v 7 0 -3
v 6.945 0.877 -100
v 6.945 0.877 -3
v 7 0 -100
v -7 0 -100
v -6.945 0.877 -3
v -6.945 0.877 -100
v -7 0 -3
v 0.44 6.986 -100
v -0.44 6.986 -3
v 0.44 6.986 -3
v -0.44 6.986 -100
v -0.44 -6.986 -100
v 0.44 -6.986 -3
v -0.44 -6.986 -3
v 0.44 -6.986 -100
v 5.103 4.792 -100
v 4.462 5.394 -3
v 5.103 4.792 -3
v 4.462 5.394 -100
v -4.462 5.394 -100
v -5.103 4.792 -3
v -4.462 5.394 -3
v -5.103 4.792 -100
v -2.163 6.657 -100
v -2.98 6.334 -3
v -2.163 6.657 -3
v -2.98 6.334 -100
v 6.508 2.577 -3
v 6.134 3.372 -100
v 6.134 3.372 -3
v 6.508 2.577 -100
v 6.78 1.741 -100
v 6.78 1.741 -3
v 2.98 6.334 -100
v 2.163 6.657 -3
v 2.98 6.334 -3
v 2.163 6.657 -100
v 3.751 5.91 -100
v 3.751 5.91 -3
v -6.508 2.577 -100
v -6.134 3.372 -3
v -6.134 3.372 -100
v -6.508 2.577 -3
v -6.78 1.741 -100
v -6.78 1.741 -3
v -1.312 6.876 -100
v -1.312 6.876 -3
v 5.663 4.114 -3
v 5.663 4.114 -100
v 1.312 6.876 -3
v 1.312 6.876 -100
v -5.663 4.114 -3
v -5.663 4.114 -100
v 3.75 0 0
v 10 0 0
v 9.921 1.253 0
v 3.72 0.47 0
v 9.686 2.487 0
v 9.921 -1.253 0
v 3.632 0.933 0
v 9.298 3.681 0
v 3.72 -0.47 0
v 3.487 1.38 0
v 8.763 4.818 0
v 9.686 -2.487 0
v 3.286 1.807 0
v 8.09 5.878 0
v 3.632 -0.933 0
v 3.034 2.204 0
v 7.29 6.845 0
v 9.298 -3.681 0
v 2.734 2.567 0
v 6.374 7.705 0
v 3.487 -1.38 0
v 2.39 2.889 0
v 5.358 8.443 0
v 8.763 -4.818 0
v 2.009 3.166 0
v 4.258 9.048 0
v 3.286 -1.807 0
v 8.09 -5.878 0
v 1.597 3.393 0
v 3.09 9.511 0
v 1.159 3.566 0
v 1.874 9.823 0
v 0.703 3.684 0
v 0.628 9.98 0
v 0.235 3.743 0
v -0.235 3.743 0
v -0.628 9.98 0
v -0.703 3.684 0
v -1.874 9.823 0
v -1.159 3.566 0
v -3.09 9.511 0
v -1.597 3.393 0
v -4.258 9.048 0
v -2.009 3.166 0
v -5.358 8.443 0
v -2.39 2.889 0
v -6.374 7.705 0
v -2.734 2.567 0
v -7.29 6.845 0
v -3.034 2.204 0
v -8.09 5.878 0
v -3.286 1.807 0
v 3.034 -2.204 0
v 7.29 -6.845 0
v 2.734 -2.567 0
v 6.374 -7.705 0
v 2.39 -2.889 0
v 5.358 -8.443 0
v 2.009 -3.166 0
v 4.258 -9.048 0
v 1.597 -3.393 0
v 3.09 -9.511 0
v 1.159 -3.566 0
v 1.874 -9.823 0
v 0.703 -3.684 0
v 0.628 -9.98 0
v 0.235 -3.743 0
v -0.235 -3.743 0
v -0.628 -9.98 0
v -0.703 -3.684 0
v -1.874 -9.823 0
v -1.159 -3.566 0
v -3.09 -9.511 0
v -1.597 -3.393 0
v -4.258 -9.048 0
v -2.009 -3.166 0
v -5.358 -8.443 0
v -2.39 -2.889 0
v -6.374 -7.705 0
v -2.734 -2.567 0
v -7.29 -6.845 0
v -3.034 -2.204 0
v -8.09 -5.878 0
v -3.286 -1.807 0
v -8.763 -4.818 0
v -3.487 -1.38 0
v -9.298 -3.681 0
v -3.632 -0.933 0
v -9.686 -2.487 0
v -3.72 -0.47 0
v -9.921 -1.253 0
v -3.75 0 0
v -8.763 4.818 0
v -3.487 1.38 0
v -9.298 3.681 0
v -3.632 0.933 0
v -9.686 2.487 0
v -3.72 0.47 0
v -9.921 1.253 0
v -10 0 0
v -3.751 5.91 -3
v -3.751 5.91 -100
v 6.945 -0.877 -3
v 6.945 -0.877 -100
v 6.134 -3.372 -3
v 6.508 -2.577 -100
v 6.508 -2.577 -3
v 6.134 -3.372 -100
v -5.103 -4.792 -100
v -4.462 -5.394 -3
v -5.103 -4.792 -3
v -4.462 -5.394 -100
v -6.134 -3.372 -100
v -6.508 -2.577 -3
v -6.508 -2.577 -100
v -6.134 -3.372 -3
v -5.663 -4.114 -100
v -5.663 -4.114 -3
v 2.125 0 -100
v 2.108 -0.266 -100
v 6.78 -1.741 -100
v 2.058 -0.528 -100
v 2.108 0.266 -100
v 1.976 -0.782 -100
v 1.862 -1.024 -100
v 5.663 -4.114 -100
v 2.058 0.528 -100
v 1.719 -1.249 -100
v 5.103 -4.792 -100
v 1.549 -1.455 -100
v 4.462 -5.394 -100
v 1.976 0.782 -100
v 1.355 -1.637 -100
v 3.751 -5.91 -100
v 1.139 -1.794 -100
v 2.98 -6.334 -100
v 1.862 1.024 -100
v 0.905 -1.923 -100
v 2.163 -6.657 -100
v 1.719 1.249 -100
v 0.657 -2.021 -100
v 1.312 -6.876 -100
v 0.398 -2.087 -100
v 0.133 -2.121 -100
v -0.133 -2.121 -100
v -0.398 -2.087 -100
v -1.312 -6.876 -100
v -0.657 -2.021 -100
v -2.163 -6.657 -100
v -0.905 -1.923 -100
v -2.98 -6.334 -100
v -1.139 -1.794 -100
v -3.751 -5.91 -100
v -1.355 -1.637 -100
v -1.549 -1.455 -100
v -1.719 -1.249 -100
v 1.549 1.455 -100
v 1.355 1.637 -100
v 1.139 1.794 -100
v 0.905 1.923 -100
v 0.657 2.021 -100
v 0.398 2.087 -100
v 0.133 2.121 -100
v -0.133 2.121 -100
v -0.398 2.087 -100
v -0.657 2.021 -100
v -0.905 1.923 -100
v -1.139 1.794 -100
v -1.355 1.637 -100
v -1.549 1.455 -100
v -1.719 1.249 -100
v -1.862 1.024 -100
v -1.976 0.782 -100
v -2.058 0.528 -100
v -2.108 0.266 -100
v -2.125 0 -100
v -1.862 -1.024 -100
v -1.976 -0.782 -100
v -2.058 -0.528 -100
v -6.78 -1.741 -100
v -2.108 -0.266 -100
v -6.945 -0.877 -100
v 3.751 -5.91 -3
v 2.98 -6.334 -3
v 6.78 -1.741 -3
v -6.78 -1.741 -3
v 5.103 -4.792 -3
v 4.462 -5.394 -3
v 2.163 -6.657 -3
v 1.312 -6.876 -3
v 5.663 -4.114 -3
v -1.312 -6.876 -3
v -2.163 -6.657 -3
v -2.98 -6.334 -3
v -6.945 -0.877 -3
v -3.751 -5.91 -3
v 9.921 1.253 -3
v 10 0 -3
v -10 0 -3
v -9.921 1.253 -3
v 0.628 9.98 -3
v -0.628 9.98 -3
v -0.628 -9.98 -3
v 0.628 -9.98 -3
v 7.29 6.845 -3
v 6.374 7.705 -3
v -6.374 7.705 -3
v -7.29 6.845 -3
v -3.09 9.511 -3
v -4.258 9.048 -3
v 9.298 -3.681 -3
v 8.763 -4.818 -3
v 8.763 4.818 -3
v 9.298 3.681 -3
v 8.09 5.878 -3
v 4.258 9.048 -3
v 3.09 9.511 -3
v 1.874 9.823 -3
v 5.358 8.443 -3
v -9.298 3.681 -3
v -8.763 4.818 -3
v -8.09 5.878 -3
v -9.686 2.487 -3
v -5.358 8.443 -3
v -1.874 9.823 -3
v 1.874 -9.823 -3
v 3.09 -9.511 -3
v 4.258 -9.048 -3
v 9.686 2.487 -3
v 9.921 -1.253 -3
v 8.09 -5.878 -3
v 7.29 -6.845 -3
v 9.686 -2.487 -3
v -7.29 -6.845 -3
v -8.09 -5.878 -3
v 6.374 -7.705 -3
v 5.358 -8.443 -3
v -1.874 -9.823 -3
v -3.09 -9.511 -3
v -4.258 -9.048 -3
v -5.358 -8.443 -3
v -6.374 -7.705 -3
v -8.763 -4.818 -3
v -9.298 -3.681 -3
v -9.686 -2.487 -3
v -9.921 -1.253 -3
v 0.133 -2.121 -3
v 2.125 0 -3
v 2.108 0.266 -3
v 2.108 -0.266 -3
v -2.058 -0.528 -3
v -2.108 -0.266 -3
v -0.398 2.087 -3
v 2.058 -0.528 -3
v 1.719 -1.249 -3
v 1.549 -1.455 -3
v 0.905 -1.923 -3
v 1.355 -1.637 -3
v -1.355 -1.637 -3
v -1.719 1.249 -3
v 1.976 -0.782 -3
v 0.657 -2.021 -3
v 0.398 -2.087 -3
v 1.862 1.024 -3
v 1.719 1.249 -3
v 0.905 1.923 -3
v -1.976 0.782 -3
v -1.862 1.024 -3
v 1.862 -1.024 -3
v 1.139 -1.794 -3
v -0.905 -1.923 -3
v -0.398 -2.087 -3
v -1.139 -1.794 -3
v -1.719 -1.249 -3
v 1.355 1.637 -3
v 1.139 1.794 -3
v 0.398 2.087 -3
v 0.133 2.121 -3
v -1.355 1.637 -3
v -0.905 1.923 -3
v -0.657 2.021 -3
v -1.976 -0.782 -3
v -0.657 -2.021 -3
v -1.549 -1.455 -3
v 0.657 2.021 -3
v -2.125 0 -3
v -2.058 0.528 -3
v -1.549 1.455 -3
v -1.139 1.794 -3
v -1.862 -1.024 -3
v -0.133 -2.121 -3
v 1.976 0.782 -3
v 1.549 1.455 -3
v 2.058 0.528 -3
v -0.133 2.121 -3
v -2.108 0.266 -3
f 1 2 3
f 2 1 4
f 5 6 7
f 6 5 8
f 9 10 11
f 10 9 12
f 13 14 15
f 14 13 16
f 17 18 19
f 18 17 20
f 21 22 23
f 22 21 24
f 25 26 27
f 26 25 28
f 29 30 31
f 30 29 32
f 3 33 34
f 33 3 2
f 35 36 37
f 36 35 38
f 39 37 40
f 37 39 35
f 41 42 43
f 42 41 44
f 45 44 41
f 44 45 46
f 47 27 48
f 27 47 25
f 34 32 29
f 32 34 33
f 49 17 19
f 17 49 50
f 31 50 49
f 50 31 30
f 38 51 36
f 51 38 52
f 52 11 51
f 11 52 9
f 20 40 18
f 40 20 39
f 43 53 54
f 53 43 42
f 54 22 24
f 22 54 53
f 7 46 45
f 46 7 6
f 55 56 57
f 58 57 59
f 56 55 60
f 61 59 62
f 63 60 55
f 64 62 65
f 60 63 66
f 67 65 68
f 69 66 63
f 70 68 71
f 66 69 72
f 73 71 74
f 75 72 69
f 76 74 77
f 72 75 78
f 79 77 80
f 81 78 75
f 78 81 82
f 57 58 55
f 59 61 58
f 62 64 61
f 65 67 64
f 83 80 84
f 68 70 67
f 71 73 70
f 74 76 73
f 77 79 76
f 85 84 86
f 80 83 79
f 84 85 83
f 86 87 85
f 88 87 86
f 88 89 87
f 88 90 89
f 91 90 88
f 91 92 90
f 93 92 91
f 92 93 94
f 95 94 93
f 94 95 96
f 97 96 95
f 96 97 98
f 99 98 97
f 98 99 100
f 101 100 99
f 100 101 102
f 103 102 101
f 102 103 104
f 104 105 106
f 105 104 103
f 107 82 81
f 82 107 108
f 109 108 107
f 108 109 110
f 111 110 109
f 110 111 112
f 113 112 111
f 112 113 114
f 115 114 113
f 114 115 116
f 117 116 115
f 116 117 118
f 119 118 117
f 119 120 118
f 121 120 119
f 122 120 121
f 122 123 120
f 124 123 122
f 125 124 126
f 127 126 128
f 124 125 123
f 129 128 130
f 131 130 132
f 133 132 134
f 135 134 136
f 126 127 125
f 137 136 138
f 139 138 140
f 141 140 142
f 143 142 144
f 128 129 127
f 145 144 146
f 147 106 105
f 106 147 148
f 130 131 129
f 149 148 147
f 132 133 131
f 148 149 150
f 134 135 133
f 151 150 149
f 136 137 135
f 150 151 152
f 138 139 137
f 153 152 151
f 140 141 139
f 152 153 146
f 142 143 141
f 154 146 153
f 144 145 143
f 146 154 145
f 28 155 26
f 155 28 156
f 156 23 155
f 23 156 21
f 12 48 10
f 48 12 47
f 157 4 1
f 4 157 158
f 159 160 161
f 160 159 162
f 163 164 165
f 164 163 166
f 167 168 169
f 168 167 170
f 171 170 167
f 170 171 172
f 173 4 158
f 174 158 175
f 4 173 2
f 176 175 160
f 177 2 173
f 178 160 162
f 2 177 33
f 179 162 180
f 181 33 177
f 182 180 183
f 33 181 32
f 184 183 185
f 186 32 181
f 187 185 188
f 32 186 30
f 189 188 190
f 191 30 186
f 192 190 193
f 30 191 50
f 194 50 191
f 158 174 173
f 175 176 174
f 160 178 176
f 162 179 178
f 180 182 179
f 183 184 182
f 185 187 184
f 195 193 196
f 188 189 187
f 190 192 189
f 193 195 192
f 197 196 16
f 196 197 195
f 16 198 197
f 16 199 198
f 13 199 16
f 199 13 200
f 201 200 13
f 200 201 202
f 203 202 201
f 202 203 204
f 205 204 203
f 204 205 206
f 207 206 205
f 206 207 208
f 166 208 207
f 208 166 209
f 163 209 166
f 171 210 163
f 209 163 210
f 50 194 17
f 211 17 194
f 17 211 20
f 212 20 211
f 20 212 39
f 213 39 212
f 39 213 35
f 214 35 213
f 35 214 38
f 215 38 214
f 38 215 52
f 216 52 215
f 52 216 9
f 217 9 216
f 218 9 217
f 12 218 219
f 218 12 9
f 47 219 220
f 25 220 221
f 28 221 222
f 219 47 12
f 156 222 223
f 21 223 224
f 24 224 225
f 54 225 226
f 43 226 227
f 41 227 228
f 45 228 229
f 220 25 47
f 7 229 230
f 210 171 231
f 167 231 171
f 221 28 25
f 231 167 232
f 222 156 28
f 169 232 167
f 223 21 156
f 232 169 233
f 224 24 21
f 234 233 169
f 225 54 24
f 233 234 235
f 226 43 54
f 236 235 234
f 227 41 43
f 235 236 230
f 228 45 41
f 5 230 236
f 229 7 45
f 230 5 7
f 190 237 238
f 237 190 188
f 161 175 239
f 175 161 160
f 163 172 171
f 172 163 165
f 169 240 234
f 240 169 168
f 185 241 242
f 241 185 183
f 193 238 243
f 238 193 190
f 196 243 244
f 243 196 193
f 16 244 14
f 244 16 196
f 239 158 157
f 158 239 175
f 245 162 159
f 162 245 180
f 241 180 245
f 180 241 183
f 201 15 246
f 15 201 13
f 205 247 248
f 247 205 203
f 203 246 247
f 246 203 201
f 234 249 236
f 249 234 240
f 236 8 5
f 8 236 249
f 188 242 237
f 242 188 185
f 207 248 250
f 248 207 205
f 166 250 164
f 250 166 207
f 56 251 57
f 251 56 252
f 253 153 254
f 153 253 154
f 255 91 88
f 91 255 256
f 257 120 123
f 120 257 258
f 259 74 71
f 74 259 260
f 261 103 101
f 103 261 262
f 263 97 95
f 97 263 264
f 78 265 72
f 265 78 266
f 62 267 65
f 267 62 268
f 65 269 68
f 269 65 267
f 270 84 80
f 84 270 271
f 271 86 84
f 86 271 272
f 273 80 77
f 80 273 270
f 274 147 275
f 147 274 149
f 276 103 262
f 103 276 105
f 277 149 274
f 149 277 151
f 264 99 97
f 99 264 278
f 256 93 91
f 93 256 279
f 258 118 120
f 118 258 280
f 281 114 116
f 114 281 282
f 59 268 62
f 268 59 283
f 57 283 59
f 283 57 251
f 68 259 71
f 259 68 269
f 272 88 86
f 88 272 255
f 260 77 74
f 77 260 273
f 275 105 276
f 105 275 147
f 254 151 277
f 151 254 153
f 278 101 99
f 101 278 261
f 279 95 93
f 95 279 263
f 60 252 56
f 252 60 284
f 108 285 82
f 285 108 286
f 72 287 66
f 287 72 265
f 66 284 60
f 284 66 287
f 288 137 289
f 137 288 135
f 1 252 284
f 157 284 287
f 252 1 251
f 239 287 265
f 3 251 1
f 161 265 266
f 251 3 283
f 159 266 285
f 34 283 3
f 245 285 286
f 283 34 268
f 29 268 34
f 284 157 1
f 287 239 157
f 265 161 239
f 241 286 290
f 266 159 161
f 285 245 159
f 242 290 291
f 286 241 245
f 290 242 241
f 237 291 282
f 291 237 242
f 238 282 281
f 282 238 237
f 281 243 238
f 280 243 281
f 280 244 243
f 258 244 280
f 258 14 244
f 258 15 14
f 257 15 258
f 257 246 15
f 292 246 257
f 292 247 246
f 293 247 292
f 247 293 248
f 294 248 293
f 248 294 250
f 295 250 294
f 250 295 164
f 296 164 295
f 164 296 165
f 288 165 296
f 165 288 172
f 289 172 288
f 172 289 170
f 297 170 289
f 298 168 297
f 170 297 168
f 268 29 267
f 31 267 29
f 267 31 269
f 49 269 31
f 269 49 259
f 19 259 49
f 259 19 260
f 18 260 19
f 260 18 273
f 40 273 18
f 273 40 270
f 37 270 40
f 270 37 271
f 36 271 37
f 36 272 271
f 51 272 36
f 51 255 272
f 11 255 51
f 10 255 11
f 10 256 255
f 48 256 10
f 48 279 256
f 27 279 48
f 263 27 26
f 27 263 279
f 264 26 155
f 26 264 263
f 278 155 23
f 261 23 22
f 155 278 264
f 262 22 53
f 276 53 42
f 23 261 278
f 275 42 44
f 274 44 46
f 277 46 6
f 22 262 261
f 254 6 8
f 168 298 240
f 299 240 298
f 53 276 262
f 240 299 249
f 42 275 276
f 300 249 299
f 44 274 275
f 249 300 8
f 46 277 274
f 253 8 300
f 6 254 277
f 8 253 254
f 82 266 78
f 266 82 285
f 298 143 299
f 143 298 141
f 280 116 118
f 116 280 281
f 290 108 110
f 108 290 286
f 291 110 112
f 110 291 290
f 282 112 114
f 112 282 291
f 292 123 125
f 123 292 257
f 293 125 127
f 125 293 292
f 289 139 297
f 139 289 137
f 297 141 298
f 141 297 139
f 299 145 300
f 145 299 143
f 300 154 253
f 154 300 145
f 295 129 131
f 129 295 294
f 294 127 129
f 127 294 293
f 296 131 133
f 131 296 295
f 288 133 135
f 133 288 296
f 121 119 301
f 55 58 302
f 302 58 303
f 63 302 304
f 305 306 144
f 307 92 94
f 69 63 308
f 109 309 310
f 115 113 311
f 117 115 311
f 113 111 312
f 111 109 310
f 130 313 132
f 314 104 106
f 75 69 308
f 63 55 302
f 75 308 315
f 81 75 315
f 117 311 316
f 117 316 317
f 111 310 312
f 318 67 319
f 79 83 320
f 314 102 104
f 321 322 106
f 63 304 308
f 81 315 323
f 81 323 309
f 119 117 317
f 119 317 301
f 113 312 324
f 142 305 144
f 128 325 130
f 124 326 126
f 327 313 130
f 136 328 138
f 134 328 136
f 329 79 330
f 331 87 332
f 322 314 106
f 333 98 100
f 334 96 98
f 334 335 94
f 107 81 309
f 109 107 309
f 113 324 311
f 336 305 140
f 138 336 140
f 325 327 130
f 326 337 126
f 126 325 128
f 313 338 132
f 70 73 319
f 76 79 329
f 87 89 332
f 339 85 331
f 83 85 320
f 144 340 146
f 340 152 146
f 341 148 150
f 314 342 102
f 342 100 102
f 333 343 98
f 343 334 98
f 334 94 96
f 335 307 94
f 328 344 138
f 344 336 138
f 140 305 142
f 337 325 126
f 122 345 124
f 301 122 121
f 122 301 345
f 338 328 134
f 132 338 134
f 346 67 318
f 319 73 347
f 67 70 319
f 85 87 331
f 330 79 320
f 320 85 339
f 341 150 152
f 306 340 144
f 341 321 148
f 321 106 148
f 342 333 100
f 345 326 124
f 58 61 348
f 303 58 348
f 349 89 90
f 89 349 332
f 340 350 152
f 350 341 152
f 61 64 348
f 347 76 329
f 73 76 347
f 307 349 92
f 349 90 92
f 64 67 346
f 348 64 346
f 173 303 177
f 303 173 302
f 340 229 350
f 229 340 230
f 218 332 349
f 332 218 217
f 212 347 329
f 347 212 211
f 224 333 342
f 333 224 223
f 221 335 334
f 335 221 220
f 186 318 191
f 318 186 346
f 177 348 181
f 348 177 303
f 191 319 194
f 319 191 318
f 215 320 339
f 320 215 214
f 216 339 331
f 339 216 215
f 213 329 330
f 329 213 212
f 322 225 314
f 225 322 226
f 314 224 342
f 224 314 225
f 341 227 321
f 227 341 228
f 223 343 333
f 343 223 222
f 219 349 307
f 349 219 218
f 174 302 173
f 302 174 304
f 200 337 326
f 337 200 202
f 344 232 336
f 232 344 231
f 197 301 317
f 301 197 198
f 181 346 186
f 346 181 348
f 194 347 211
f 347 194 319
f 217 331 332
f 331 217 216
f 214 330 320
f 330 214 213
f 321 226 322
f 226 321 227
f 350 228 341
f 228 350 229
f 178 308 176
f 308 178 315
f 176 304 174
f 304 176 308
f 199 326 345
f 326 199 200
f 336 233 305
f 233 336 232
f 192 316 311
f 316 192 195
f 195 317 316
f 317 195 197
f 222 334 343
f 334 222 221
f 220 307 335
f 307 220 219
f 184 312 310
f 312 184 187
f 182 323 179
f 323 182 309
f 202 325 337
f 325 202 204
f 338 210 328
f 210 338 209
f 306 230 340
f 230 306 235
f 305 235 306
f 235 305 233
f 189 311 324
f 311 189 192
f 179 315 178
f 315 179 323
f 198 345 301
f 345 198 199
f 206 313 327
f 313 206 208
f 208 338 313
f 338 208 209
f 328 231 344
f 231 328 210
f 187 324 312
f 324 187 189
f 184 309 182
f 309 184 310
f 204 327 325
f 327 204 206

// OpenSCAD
$fn = 50;


difference() {
	union() {
		translate(v = [0, 0, -100.0000000000]) {
			cylinder(h = 100, r = 7.0000000000);
		}
		translate(v = [0, 0, -3.0000000000]) {
			cylinder(h = 3, r = 10.0000000000);
		}
	}
	union() {
		translate(v = [0, 0, 0]) {
			rotate(a = [0, 0, 0]) {
				difference() {
					union() {
						#translate(v = [0, 0, -100.0000000000]) {
							cylinder(h = 100, r = 2.0000000000);
						}
						#translate(v = [0, 0, -3]) {
							cylinder(h = 3, r1 = 2.1250000000, r2 = 3.7500000000);
						}
						#translate(v = [0, 0, -100.0000000000]) {
							cylinder(h = 100, r = 2.1250000000);
						}
						#translate(v = [0, 0, -100.0000000000]) {
							cylinder(h = 100, r = 2.0000000000);
						}
					}
					union();
				}
			}
		}
	}
}
